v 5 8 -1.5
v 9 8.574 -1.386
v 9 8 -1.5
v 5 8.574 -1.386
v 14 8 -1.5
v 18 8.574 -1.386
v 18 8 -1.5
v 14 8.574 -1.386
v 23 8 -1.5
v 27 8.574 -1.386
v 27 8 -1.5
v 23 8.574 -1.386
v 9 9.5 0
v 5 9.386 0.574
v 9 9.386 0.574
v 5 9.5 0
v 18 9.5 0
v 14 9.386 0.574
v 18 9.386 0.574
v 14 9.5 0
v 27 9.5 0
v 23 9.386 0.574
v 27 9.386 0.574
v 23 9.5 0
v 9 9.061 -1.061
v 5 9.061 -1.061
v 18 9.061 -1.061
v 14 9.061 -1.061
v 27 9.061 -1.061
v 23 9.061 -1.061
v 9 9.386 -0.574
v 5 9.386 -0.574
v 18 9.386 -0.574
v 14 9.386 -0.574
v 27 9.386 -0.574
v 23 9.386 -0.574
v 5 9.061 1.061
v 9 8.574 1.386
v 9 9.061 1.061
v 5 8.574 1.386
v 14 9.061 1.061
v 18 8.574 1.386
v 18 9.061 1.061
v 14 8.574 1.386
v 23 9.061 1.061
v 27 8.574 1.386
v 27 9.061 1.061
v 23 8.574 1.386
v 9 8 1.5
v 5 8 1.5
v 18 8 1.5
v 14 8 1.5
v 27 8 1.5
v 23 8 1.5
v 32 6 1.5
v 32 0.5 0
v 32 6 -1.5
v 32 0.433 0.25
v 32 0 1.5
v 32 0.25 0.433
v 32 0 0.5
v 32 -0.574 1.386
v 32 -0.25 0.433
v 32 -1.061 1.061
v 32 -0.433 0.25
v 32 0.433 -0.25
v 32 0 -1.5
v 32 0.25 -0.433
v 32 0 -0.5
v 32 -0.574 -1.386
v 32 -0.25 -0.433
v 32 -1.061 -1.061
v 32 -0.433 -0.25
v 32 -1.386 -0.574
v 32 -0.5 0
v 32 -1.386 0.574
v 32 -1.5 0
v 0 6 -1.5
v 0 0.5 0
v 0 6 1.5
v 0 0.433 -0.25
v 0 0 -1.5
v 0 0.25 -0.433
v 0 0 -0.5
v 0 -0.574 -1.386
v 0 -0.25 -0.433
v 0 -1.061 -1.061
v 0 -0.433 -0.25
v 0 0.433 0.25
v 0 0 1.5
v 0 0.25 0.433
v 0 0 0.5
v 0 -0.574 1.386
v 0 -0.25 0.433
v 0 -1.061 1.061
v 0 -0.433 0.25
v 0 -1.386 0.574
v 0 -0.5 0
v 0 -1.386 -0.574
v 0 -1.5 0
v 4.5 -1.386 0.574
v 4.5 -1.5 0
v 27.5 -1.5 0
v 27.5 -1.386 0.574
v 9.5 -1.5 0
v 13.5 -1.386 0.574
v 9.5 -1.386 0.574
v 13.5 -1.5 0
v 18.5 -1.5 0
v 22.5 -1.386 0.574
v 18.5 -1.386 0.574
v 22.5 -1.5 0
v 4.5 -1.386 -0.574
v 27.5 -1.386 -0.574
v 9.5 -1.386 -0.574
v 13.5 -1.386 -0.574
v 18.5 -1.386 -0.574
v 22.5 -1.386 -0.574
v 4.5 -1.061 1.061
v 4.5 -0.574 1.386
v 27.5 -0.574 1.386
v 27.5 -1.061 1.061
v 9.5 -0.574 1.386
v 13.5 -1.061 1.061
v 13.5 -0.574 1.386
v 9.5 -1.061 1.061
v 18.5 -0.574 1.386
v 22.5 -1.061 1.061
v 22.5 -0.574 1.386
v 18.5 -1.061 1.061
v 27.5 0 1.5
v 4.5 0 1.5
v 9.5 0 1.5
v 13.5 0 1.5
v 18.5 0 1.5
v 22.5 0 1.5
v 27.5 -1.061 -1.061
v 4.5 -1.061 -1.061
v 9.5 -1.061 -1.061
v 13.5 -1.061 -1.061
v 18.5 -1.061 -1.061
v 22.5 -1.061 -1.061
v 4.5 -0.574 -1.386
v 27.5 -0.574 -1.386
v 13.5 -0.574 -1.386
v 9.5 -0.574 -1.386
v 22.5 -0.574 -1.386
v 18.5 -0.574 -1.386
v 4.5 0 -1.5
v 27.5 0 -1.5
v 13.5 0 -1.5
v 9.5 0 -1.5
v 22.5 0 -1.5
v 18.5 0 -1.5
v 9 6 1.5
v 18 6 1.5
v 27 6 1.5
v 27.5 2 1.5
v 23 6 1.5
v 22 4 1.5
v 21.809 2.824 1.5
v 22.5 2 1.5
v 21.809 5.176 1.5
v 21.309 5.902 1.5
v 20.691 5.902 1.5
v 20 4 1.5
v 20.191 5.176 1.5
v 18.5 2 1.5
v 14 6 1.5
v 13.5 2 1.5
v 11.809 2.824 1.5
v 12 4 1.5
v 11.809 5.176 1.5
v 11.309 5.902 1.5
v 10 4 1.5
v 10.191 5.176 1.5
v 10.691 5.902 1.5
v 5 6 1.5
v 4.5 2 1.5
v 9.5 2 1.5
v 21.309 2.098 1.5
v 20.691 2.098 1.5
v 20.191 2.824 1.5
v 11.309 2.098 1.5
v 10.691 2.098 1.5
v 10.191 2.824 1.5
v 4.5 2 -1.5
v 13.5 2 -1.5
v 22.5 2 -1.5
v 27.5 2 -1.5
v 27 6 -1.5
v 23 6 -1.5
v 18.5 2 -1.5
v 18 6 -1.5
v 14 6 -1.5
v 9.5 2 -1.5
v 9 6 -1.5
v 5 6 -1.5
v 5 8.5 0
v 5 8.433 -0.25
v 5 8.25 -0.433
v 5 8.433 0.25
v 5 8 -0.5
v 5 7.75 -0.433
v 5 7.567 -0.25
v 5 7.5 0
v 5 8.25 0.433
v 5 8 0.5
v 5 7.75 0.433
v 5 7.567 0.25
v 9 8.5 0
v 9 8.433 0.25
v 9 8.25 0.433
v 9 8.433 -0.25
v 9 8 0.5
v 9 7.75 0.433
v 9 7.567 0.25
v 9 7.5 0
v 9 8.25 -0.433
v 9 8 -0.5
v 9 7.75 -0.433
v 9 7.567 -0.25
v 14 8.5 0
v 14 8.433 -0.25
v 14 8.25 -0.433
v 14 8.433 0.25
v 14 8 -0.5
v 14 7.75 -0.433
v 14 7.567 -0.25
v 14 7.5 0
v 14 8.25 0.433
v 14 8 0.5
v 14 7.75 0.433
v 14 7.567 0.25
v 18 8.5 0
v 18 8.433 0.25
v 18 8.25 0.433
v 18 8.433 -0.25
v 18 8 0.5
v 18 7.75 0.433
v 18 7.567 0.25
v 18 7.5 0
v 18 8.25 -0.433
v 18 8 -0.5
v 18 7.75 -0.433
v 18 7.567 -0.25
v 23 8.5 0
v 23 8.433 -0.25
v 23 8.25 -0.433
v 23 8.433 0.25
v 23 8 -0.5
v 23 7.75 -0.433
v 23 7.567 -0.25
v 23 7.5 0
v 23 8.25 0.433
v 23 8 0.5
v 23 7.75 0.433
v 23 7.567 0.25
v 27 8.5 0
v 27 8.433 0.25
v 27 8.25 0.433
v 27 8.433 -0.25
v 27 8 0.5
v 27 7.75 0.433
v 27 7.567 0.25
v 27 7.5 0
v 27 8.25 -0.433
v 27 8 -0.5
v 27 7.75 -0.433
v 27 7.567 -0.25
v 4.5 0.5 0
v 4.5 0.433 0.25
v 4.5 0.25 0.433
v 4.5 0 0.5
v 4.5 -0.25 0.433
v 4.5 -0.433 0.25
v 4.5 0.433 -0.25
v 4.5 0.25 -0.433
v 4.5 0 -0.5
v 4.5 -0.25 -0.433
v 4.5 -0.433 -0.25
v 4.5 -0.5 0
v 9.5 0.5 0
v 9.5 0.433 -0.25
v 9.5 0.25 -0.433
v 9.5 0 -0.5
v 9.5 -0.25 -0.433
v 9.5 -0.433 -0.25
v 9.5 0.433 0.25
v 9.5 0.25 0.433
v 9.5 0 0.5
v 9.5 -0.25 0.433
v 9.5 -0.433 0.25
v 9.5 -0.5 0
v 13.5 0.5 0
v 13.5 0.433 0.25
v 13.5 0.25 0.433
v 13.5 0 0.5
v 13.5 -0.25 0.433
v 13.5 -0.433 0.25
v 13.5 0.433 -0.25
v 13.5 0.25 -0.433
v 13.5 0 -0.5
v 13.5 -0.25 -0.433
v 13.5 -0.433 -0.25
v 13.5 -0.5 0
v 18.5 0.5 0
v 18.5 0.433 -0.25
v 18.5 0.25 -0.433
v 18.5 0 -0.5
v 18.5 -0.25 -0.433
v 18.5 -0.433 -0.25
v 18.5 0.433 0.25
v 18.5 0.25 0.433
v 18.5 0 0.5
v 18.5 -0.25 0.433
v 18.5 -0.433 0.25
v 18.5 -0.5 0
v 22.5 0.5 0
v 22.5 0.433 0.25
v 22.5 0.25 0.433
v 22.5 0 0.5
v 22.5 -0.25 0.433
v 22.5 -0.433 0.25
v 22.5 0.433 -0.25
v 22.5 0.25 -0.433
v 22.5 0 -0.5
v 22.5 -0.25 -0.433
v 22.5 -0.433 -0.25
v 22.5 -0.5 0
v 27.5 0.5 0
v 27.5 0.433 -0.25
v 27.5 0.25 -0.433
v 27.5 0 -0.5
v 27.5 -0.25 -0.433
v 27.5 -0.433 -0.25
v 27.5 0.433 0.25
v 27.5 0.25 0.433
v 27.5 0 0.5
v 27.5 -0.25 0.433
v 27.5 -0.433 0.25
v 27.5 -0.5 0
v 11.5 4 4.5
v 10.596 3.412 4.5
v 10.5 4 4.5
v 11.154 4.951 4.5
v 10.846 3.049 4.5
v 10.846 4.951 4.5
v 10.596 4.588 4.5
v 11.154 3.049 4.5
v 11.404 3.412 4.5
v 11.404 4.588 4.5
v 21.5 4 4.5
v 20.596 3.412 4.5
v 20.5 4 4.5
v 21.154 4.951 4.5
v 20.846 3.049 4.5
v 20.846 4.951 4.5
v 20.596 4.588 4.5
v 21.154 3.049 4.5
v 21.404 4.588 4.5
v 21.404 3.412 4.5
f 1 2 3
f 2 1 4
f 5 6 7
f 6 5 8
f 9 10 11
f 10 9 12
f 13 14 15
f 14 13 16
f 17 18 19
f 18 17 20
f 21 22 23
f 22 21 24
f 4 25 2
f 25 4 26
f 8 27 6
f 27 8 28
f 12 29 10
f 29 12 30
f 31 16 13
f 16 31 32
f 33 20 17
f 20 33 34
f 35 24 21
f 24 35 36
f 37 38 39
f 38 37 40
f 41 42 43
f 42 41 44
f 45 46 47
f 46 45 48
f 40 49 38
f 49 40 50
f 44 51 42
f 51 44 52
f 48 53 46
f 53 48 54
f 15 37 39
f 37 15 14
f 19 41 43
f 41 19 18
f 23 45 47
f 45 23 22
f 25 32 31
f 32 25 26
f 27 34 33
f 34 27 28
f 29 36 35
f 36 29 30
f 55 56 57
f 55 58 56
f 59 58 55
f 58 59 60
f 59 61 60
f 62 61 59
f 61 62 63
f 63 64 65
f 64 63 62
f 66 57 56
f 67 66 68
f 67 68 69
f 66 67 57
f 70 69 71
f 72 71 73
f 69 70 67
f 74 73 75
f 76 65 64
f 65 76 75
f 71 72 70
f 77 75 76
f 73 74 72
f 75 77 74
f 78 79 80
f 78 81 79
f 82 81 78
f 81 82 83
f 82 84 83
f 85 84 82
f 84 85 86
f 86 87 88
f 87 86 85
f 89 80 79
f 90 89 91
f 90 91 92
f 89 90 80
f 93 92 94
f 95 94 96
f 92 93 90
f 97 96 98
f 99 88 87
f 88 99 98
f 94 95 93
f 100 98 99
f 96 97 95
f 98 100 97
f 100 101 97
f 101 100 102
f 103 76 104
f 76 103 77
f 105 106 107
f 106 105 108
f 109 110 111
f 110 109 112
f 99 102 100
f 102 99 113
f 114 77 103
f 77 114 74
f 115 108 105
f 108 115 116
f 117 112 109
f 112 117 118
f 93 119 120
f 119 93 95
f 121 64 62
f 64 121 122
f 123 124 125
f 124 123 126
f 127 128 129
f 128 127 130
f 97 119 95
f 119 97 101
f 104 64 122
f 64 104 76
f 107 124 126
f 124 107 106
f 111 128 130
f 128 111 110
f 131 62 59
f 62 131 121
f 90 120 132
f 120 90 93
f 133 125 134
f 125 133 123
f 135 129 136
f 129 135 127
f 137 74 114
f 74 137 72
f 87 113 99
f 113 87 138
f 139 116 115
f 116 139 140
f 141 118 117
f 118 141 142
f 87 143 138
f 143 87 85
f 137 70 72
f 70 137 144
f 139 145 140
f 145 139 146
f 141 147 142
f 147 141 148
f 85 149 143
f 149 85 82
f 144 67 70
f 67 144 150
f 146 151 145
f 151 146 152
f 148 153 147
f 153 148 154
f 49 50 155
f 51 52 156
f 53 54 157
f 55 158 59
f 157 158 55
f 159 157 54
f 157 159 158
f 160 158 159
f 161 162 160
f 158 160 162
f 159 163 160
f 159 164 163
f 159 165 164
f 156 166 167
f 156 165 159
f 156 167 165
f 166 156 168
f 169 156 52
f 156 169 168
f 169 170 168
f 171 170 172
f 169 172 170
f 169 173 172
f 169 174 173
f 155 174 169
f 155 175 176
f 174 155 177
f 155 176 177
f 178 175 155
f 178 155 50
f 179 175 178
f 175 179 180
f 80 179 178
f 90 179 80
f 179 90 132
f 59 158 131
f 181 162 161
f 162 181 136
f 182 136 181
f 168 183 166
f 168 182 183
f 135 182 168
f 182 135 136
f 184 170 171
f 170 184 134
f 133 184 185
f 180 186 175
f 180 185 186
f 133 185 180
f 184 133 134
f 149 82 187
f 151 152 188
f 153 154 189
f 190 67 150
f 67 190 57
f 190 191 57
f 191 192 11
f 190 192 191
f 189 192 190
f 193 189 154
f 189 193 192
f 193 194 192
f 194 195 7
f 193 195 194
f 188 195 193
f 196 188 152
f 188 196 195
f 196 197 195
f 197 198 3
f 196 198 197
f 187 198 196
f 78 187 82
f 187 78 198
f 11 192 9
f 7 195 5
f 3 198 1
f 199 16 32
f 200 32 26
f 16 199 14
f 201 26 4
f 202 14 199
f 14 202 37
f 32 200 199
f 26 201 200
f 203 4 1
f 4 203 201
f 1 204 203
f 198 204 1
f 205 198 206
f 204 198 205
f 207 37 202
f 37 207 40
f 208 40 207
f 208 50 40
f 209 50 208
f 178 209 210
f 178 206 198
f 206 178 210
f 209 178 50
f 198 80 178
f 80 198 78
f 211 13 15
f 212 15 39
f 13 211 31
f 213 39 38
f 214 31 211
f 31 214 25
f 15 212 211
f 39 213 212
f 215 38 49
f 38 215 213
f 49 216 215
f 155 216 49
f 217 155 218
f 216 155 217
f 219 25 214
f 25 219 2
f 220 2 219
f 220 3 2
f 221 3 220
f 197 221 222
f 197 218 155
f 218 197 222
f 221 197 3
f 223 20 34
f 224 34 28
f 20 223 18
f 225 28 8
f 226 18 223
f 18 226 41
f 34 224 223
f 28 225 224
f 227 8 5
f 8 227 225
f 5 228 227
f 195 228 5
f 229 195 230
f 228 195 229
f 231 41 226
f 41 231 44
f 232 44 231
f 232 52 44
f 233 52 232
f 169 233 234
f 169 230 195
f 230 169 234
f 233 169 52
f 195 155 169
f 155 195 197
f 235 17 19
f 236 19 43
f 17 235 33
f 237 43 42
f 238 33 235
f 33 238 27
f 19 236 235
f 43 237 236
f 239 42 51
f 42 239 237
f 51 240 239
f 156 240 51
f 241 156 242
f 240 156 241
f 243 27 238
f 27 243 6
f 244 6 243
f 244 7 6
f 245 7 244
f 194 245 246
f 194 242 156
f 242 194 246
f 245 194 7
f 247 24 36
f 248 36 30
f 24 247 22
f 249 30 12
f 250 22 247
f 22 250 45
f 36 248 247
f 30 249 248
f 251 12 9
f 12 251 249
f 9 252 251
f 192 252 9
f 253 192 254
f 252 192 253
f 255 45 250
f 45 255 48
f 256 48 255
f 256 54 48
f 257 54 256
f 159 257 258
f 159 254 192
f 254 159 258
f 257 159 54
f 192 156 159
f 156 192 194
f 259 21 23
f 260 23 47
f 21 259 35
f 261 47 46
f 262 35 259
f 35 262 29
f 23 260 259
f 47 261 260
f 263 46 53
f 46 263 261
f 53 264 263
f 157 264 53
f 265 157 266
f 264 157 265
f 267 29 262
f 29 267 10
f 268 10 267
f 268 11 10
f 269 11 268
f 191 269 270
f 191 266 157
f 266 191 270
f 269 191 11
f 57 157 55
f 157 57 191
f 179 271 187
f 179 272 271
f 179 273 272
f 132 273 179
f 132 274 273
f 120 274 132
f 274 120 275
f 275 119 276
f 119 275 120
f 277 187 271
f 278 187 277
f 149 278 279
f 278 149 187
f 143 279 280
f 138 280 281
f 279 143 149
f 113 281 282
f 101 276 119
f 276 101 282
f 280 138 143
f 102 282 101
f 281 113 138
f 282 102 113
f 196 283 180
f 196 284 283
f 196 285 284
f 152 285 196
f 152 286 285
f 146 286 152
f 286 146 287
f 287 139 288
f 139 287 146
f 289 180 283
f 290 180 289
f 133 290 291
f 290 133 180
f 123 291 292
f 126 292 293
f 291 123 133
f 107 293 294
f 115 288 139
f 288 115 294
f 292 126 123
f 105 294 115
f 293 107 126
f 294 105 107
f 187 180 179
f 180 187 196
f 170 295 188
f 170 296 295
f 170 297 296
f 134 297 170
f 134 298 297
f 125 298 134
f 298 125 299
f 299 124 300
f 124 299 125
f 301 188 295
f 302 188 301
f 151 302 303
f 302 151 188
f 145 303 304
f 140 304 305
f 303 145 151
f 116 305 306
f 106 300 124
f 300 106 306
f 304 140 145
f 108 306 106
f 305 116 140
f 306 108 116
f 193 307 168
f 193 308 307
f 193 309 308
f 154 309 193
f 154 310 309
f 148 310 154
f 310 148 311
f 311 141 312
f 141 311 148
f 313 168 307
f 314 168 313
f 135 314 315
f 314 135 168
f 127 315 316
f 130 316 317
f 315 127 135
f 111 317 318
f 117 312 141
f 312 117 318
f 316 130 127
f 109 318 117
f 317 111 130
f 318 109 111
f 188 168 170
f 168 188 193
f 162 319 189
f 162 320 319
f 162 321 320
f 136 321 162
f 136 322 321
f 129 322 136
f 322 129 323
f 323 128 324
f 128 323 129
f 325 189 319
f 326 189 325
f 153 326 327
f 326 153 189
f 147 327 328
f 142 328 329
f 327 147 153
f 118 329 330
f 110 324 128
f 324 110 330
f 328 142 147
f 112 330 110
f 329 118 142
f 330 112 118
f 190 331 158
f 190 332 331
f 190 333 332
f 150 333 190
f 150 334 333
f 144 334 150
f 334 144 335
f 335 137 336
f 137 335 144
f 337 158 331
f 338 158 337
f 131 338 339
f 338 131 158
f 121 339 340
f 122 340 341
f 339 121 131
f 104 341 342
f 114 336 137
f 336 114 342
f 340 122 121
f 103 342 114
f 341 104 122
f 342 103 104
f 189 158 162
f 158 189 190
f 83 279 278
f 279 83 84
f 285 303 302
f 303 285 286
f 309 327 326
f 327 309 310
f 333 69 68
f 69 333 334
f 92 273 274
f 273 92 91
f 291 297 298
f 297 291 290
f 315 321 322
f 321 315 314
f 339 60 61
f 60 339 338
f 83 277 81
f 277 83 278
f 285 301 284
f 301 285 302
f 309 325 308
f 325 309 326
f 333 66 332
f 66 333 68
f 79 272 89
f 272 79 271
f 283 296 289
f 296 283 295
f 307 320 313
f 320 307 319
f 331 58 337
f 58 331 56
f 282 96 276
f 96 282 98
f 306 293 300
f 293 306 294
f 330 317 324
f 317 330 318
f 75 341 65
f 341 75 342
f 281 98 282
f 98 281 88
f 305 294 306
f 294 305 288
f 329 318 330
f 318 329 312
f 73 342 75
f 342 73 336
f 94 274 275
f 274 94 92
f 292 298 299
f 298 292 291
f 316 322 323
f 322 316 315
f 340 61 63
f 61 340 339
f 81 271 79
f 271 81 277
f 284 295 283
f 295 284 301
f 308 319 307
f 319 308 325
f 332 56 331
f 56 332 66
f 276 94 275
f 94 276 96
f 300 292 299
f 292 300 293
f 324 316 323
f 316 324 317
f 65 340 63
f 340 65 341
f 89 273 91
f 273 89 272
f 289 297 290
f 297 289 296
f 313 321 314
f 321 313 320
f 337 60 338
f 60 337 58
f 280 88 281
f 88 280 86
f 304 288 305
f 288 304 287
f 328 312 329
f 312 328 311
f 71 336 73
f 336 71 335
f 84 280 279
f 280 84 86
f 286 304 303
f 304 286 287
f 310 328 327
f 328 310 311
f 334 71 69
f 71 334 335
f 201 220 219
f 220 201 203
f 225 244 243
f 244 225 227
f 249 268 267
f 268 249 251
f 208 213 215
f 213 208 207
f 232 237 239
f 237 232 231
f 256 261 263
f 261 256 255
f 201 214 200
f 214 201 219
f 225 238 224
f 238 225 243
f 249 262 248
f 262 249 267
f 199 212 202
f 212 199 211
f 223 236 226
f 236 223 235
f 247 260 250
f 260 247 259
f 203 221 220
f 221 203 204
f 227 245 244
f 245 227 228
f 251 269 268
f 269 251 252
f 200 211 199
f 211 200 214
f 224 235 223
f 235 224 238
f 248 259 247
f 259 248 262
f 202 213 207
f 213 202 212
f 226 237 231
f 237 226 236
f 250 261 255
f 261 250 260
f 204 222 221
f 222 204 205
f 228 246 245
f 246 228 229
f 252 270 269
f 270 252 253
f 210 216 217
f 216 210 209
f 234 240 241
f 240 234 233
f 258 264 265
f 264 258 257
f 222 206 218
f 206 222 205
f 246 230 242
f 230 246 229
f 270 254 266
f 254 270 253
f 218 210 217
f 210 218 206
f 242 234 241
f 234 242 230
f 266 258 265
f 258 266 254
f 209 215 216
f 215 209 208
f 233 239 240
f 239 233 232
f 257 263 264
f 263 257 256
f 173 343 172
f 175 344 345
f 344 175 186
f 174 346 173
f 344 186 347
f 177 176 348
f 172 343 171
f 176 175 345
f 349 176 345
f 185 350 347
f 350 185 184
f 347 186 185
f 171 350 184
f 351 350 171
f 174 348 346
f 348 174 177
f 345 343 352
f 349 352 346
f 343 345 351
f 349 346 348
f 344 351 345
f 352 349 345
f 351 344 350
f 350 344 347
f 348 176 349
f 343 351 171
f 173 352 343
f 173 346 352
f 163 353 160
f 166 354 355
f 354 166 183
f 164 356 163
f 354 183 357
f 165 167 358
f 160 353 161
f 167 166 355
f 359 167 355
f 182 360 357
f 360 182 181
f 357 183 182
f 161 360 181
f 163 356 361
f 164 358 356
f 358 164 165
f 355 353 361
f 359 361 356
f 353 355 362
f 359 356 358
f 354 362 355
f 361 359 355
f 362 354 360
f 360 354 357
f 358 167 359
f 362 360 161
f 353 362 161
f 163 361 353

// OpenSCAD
difference(){
//main section
union(){
translate([0,8,0])
	rotate([0,90,0])
		cylinder(32,1.5,1.5, $fn=16);
translate([0,0,0])
	rotate([0,90,0])
		cylinder(32,1.5,1.5, $fn=16);
translate([0,0,-1.5])
	cube([32,8,3]);
}

//right cut
translate([0,6,-3])
	cube([5,5,6]);
translate([9,6,-3])
	cube([5,5,6]);
translate([18,6,-3])
	cube([5,5,6]);
translate([27,6,-3])
	cube([5,5,6]);

//left cut
translate([4.5,-3,-3])
	cube([5,5,6]);
translate([13.5,-3,-3])
	cube([5,5,6]);
translate([22.5,-3,-3])
	cube([5,5,6]);

//holes
translate([-1,0,0])
	rotate([0,90,0])
		cylinder(34,0.5,0.5, $fn=12);
translate([-1,8,0])
	rotate([0,90,0])
		cylinder(34,0.5,0.5, $fn=12);

}
//upper part
translate([11,4,1.5])
	scale([1,2,1])
		cylinder(3,1,0.5, $fn=10);

//upper part
translate([21,4,1.5])
	scale([1,2,1])
		cylinder(3,1,0.5, $fn=10);
